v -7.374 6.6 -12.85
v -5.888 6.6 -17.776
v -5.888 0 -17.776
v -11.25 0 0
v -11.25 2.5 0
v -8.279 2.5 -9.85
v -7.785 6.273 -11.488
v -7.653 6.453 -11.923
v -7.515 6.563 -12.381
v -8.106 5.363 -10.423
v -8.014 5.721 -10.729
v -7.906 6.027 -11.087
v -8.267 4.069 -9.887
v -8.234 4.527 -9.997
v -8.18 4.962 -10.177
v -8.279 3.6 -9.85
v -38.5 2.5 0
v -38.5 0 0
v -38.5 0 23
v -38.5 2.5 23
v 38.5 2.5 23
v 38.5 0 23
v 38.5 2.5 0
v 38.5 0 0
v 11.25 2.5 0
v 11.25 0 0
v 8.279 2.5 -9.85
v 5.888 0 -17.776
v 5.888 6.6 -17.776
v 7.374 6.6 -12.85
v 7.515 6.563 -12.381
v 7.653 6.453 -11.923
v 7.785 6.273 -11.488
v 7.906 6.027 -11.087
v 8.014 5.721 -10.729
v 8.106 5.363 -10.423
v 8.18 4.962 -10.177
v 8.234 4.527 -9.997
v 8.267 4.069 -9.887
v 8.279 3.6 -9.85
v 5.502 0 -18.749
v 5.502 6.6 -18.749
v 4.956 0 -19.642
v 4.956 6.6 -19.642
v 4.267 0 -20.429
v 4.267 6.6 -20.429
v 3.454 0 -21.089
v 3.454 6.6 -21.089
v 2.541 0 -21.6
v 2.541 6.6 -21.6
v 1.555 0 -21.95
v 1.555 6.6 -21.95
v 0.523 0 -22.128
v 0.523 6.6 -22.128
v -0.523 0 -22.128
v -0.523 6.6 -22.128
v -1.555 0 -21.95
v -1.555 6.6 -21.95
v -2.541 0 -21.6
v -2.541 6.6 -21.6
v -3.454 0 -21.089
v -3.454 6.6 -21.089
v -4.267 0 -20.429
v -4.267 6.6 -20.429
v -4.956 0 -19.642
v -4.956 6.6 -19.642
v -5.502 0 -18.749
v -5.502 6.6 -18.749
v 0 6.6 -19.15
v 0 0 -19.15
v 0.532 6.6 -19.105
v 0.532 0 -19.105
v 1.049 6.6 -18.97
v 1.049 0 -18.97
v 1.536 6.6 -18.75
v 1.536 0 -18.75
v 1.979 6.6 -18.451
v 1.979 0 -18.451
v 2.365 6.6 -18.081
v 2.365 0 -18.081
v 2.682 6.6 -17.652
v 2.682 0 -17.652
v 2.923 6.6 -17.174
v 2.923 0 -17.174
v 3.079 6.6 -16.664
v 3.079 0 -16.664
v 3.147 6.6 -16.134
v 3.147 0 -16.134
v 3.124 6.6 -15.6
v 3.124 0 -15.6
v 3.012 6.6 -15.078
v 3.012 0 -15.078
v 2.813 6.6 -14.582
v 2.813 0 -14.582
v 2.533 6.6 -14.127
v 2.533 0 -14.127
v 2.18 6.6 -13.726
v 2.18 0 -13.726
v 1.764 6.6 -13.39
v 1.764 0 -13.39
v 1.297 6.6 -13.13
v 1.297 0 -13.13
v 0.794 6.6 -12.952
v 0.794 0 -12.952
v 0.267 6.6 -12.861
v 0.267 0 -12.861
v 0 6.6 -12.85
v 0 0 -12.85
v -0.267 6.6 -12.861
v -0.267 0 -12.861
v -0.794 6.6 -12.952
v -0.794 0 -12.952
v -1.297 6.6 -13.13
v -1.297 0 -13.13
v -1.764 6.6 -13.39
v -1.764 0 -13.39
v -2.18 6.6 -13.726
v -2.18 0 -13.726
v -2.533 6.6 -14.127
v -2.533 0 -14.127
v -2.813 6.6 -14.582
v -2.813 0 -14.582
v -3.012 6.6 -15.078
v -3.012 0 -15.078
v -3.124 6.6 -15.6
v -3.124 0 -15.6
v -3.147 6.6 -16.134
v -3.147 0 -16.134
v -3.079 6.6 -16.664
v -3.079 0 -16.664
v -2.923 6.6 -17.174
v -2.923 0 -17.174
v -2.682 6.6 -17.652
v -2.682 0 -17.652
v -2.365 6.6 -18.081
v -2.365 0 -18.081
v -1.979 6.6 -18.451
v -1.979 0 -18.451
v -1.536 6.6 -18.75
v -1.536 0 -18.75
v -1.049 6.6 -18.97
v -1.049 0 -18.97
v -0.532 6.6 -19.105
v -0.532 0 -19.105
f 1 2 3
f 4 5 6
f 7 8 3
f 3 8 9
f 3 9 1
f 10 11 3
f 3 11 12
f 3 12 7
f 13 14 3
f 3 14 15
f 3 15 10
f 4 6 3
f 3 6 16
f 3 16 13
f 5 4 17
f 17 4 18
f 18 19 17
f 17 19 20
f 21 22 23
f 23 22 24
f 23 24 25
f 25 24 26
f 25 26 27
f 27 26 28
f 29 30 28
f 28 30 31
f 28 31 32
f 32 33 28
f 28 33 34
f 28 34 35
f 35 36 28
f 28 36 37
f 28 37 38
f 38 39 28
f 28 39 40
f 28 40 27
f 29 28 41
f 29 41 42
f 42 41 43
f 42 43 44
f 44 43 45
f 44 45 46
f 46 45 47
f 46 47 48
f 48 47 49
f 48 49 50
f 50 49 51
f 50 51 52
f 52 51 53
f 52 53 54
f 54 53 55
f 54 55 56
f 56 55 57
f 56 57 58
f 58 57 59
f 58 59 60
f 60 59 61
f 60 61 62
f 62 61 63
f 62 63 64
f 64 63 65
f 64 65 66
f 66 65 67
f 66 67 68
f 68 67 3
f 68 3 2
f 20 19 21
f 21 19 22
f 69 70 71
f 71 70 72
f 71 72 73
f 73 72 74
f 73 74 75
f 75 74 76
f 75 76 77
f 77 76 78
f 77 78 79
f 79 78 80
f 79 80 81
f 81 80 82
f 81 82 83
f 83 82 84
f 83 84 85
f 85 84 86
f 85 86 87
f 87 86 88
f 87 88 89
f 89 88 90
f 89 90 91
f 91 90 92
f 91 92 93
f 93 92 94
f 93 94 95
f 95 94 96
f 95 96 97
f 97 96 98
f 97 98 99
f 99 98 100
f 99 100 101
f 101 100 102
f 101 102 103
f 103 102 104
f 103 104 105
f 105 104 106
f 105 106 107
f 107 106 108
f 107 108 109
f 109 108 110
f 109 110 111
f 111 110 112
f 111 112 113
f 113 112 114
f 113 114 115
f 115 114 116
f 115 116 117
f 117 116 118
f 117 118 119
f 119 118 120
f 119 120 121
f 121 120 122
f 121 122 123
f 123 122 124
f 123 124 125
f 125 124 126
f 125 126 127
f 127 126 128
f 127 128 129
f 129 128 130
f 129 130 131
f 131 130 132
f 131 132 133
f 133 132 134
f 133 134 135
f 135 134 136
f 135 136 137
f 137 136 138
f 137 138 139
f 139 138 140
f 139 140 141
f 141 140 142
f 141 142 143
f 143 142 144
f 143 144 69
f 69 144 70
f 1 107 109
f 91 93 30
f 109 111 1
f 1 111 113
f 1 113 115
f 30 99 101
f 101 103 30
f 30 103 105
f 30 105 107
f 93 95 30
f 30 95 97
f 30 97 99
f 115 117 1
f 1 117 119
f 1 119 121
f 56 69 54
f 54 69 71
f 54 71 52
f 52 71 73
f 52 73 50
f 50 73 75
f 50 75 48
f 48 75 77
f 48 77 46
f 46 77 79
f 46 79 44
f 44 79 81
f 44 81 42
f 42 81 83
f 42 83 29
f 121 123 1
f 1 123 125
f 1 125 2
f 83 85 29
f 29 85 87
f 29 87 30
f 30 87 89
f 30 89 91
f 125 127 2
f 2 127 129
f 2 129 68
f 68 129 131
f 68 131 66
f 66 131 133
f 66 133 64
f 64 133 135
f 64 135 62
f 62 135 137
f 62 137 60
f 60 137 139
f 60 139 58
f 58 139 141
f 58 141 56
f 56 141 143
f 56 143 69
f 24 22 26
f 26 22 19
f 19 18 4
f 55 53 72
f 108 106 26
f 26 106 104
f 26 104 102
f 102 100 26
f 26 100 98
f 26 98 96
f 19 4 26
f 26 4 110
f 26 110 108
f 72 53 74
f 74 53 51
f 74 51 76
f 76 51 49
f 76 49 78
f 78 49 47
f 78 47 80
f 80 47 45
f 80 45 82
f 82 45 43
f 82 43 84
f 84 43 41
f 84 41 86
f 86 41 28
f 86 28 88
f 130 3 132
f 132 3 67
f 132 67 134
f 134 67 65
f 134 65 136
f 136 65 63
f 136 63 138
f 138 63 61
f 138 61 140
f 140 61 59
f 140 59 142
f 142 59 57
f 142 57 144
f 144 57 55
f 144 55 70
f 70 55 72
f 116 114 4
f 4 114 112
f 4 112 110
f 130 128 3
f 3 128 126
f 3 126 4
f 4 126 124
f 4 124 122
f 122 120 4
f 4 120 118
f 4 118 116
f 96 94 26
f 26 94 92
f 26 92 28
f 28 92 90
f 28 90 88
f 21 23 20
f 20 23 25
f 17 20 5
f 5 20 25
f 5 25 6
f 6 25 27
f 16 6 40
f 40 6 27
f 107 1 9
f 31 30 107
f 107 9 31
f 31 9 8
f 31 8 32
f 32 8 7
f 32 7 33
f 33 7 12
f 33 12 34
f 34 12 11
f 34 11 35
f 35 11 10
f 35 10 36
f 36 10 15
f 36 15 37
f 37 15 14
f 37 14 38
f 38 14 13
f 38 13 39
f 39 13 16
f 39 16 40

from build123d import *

# Parameters (mm, degrees)
SKETCH_1_R               = 3.15
SKETCH_1_W               = 77
SKETCH_1_H               = 23
EXTRUDE_1_DEPTH          = 6.6
CUT_EXTRUDE_1_DEPTH      = 46.330012133
CUT_EXTRUDE_1_DEPTH_BACK = 46.330012133
FILLET_1_R               = 3


with BuildPart() as part:
    # 草图1 → 凸台-拉伸1 (new body)
    # profile 1 of 2: a face of its own
    with BuildSketch(Plane(origin=(0, 0, 0), x_dir=(1, 0, 0), z_dir=(0, 1, 0))):
        with BuildLine():
            Line((-5.888001359, 17.775933557), (-11.249562098, 0))
            Line((-11.249562098, 0), (11.249562098, 0))
            Line((11.249562098, 0), (5.888001359, 17.775933557))
            ThreePointArc((5.888001359, 17.775933557), (0, 22.15), (-5.888001359, 17.775933557))
        make_face()
        with Locations(Location((0, 16, 0), (0, 0, 270))):
            Circle(SKETCH_1_R, mode=Mode.SUBTRACT)
    # profile 2 of 2: a face of its own
    with BuildSketch(Plane(origin=(0, 0, 0), x_dir=(1, 0, 0), z_dir=(0, 1, 0))):
        with Locations((0, -11.5)):
            Rectangle(SKETCH_1_W, SKETCH_1_H)
    extrude(amount=EXTRUDE_1_DEPTH)

    # 草图2 → 切除-拉伸1 (cut, two sides: drawn at the far end of the back side and taken through both)
    with BuildSketch(Plane(origin=(0, 0, 0), x_dir=(0, 0, -1), z_dir=(1, 0, 0)).offset(-CUT_EXTRUDE_1_DEPTH_BACK)):
        Polygon((-123.671550114, 2.5), (-23, 2.5), (9.85, 2.5), (9.85, 6.6), (9.85, 107.271550114), (-114.442682903, 265.67095979), (-247.964233016, 160.899409677), align=None)
    extrude(amount=CUT_EXTRUDE_1_DEPTH + CUT_EXTRUDE_1_DEPTH_BACK, mode=Mode.SUBTRACT)

    # 圆角1
    fillet_1_edges = [part.edges().sort_by_distance(p)[0] for p in [
        (0, 6.6, -9.85),
    ]]
    fillet(fillet_1_edges, radius=FILLET_1_R - 0.0001)  # a hair under: the kernel refuses the full size


solid = part.part
